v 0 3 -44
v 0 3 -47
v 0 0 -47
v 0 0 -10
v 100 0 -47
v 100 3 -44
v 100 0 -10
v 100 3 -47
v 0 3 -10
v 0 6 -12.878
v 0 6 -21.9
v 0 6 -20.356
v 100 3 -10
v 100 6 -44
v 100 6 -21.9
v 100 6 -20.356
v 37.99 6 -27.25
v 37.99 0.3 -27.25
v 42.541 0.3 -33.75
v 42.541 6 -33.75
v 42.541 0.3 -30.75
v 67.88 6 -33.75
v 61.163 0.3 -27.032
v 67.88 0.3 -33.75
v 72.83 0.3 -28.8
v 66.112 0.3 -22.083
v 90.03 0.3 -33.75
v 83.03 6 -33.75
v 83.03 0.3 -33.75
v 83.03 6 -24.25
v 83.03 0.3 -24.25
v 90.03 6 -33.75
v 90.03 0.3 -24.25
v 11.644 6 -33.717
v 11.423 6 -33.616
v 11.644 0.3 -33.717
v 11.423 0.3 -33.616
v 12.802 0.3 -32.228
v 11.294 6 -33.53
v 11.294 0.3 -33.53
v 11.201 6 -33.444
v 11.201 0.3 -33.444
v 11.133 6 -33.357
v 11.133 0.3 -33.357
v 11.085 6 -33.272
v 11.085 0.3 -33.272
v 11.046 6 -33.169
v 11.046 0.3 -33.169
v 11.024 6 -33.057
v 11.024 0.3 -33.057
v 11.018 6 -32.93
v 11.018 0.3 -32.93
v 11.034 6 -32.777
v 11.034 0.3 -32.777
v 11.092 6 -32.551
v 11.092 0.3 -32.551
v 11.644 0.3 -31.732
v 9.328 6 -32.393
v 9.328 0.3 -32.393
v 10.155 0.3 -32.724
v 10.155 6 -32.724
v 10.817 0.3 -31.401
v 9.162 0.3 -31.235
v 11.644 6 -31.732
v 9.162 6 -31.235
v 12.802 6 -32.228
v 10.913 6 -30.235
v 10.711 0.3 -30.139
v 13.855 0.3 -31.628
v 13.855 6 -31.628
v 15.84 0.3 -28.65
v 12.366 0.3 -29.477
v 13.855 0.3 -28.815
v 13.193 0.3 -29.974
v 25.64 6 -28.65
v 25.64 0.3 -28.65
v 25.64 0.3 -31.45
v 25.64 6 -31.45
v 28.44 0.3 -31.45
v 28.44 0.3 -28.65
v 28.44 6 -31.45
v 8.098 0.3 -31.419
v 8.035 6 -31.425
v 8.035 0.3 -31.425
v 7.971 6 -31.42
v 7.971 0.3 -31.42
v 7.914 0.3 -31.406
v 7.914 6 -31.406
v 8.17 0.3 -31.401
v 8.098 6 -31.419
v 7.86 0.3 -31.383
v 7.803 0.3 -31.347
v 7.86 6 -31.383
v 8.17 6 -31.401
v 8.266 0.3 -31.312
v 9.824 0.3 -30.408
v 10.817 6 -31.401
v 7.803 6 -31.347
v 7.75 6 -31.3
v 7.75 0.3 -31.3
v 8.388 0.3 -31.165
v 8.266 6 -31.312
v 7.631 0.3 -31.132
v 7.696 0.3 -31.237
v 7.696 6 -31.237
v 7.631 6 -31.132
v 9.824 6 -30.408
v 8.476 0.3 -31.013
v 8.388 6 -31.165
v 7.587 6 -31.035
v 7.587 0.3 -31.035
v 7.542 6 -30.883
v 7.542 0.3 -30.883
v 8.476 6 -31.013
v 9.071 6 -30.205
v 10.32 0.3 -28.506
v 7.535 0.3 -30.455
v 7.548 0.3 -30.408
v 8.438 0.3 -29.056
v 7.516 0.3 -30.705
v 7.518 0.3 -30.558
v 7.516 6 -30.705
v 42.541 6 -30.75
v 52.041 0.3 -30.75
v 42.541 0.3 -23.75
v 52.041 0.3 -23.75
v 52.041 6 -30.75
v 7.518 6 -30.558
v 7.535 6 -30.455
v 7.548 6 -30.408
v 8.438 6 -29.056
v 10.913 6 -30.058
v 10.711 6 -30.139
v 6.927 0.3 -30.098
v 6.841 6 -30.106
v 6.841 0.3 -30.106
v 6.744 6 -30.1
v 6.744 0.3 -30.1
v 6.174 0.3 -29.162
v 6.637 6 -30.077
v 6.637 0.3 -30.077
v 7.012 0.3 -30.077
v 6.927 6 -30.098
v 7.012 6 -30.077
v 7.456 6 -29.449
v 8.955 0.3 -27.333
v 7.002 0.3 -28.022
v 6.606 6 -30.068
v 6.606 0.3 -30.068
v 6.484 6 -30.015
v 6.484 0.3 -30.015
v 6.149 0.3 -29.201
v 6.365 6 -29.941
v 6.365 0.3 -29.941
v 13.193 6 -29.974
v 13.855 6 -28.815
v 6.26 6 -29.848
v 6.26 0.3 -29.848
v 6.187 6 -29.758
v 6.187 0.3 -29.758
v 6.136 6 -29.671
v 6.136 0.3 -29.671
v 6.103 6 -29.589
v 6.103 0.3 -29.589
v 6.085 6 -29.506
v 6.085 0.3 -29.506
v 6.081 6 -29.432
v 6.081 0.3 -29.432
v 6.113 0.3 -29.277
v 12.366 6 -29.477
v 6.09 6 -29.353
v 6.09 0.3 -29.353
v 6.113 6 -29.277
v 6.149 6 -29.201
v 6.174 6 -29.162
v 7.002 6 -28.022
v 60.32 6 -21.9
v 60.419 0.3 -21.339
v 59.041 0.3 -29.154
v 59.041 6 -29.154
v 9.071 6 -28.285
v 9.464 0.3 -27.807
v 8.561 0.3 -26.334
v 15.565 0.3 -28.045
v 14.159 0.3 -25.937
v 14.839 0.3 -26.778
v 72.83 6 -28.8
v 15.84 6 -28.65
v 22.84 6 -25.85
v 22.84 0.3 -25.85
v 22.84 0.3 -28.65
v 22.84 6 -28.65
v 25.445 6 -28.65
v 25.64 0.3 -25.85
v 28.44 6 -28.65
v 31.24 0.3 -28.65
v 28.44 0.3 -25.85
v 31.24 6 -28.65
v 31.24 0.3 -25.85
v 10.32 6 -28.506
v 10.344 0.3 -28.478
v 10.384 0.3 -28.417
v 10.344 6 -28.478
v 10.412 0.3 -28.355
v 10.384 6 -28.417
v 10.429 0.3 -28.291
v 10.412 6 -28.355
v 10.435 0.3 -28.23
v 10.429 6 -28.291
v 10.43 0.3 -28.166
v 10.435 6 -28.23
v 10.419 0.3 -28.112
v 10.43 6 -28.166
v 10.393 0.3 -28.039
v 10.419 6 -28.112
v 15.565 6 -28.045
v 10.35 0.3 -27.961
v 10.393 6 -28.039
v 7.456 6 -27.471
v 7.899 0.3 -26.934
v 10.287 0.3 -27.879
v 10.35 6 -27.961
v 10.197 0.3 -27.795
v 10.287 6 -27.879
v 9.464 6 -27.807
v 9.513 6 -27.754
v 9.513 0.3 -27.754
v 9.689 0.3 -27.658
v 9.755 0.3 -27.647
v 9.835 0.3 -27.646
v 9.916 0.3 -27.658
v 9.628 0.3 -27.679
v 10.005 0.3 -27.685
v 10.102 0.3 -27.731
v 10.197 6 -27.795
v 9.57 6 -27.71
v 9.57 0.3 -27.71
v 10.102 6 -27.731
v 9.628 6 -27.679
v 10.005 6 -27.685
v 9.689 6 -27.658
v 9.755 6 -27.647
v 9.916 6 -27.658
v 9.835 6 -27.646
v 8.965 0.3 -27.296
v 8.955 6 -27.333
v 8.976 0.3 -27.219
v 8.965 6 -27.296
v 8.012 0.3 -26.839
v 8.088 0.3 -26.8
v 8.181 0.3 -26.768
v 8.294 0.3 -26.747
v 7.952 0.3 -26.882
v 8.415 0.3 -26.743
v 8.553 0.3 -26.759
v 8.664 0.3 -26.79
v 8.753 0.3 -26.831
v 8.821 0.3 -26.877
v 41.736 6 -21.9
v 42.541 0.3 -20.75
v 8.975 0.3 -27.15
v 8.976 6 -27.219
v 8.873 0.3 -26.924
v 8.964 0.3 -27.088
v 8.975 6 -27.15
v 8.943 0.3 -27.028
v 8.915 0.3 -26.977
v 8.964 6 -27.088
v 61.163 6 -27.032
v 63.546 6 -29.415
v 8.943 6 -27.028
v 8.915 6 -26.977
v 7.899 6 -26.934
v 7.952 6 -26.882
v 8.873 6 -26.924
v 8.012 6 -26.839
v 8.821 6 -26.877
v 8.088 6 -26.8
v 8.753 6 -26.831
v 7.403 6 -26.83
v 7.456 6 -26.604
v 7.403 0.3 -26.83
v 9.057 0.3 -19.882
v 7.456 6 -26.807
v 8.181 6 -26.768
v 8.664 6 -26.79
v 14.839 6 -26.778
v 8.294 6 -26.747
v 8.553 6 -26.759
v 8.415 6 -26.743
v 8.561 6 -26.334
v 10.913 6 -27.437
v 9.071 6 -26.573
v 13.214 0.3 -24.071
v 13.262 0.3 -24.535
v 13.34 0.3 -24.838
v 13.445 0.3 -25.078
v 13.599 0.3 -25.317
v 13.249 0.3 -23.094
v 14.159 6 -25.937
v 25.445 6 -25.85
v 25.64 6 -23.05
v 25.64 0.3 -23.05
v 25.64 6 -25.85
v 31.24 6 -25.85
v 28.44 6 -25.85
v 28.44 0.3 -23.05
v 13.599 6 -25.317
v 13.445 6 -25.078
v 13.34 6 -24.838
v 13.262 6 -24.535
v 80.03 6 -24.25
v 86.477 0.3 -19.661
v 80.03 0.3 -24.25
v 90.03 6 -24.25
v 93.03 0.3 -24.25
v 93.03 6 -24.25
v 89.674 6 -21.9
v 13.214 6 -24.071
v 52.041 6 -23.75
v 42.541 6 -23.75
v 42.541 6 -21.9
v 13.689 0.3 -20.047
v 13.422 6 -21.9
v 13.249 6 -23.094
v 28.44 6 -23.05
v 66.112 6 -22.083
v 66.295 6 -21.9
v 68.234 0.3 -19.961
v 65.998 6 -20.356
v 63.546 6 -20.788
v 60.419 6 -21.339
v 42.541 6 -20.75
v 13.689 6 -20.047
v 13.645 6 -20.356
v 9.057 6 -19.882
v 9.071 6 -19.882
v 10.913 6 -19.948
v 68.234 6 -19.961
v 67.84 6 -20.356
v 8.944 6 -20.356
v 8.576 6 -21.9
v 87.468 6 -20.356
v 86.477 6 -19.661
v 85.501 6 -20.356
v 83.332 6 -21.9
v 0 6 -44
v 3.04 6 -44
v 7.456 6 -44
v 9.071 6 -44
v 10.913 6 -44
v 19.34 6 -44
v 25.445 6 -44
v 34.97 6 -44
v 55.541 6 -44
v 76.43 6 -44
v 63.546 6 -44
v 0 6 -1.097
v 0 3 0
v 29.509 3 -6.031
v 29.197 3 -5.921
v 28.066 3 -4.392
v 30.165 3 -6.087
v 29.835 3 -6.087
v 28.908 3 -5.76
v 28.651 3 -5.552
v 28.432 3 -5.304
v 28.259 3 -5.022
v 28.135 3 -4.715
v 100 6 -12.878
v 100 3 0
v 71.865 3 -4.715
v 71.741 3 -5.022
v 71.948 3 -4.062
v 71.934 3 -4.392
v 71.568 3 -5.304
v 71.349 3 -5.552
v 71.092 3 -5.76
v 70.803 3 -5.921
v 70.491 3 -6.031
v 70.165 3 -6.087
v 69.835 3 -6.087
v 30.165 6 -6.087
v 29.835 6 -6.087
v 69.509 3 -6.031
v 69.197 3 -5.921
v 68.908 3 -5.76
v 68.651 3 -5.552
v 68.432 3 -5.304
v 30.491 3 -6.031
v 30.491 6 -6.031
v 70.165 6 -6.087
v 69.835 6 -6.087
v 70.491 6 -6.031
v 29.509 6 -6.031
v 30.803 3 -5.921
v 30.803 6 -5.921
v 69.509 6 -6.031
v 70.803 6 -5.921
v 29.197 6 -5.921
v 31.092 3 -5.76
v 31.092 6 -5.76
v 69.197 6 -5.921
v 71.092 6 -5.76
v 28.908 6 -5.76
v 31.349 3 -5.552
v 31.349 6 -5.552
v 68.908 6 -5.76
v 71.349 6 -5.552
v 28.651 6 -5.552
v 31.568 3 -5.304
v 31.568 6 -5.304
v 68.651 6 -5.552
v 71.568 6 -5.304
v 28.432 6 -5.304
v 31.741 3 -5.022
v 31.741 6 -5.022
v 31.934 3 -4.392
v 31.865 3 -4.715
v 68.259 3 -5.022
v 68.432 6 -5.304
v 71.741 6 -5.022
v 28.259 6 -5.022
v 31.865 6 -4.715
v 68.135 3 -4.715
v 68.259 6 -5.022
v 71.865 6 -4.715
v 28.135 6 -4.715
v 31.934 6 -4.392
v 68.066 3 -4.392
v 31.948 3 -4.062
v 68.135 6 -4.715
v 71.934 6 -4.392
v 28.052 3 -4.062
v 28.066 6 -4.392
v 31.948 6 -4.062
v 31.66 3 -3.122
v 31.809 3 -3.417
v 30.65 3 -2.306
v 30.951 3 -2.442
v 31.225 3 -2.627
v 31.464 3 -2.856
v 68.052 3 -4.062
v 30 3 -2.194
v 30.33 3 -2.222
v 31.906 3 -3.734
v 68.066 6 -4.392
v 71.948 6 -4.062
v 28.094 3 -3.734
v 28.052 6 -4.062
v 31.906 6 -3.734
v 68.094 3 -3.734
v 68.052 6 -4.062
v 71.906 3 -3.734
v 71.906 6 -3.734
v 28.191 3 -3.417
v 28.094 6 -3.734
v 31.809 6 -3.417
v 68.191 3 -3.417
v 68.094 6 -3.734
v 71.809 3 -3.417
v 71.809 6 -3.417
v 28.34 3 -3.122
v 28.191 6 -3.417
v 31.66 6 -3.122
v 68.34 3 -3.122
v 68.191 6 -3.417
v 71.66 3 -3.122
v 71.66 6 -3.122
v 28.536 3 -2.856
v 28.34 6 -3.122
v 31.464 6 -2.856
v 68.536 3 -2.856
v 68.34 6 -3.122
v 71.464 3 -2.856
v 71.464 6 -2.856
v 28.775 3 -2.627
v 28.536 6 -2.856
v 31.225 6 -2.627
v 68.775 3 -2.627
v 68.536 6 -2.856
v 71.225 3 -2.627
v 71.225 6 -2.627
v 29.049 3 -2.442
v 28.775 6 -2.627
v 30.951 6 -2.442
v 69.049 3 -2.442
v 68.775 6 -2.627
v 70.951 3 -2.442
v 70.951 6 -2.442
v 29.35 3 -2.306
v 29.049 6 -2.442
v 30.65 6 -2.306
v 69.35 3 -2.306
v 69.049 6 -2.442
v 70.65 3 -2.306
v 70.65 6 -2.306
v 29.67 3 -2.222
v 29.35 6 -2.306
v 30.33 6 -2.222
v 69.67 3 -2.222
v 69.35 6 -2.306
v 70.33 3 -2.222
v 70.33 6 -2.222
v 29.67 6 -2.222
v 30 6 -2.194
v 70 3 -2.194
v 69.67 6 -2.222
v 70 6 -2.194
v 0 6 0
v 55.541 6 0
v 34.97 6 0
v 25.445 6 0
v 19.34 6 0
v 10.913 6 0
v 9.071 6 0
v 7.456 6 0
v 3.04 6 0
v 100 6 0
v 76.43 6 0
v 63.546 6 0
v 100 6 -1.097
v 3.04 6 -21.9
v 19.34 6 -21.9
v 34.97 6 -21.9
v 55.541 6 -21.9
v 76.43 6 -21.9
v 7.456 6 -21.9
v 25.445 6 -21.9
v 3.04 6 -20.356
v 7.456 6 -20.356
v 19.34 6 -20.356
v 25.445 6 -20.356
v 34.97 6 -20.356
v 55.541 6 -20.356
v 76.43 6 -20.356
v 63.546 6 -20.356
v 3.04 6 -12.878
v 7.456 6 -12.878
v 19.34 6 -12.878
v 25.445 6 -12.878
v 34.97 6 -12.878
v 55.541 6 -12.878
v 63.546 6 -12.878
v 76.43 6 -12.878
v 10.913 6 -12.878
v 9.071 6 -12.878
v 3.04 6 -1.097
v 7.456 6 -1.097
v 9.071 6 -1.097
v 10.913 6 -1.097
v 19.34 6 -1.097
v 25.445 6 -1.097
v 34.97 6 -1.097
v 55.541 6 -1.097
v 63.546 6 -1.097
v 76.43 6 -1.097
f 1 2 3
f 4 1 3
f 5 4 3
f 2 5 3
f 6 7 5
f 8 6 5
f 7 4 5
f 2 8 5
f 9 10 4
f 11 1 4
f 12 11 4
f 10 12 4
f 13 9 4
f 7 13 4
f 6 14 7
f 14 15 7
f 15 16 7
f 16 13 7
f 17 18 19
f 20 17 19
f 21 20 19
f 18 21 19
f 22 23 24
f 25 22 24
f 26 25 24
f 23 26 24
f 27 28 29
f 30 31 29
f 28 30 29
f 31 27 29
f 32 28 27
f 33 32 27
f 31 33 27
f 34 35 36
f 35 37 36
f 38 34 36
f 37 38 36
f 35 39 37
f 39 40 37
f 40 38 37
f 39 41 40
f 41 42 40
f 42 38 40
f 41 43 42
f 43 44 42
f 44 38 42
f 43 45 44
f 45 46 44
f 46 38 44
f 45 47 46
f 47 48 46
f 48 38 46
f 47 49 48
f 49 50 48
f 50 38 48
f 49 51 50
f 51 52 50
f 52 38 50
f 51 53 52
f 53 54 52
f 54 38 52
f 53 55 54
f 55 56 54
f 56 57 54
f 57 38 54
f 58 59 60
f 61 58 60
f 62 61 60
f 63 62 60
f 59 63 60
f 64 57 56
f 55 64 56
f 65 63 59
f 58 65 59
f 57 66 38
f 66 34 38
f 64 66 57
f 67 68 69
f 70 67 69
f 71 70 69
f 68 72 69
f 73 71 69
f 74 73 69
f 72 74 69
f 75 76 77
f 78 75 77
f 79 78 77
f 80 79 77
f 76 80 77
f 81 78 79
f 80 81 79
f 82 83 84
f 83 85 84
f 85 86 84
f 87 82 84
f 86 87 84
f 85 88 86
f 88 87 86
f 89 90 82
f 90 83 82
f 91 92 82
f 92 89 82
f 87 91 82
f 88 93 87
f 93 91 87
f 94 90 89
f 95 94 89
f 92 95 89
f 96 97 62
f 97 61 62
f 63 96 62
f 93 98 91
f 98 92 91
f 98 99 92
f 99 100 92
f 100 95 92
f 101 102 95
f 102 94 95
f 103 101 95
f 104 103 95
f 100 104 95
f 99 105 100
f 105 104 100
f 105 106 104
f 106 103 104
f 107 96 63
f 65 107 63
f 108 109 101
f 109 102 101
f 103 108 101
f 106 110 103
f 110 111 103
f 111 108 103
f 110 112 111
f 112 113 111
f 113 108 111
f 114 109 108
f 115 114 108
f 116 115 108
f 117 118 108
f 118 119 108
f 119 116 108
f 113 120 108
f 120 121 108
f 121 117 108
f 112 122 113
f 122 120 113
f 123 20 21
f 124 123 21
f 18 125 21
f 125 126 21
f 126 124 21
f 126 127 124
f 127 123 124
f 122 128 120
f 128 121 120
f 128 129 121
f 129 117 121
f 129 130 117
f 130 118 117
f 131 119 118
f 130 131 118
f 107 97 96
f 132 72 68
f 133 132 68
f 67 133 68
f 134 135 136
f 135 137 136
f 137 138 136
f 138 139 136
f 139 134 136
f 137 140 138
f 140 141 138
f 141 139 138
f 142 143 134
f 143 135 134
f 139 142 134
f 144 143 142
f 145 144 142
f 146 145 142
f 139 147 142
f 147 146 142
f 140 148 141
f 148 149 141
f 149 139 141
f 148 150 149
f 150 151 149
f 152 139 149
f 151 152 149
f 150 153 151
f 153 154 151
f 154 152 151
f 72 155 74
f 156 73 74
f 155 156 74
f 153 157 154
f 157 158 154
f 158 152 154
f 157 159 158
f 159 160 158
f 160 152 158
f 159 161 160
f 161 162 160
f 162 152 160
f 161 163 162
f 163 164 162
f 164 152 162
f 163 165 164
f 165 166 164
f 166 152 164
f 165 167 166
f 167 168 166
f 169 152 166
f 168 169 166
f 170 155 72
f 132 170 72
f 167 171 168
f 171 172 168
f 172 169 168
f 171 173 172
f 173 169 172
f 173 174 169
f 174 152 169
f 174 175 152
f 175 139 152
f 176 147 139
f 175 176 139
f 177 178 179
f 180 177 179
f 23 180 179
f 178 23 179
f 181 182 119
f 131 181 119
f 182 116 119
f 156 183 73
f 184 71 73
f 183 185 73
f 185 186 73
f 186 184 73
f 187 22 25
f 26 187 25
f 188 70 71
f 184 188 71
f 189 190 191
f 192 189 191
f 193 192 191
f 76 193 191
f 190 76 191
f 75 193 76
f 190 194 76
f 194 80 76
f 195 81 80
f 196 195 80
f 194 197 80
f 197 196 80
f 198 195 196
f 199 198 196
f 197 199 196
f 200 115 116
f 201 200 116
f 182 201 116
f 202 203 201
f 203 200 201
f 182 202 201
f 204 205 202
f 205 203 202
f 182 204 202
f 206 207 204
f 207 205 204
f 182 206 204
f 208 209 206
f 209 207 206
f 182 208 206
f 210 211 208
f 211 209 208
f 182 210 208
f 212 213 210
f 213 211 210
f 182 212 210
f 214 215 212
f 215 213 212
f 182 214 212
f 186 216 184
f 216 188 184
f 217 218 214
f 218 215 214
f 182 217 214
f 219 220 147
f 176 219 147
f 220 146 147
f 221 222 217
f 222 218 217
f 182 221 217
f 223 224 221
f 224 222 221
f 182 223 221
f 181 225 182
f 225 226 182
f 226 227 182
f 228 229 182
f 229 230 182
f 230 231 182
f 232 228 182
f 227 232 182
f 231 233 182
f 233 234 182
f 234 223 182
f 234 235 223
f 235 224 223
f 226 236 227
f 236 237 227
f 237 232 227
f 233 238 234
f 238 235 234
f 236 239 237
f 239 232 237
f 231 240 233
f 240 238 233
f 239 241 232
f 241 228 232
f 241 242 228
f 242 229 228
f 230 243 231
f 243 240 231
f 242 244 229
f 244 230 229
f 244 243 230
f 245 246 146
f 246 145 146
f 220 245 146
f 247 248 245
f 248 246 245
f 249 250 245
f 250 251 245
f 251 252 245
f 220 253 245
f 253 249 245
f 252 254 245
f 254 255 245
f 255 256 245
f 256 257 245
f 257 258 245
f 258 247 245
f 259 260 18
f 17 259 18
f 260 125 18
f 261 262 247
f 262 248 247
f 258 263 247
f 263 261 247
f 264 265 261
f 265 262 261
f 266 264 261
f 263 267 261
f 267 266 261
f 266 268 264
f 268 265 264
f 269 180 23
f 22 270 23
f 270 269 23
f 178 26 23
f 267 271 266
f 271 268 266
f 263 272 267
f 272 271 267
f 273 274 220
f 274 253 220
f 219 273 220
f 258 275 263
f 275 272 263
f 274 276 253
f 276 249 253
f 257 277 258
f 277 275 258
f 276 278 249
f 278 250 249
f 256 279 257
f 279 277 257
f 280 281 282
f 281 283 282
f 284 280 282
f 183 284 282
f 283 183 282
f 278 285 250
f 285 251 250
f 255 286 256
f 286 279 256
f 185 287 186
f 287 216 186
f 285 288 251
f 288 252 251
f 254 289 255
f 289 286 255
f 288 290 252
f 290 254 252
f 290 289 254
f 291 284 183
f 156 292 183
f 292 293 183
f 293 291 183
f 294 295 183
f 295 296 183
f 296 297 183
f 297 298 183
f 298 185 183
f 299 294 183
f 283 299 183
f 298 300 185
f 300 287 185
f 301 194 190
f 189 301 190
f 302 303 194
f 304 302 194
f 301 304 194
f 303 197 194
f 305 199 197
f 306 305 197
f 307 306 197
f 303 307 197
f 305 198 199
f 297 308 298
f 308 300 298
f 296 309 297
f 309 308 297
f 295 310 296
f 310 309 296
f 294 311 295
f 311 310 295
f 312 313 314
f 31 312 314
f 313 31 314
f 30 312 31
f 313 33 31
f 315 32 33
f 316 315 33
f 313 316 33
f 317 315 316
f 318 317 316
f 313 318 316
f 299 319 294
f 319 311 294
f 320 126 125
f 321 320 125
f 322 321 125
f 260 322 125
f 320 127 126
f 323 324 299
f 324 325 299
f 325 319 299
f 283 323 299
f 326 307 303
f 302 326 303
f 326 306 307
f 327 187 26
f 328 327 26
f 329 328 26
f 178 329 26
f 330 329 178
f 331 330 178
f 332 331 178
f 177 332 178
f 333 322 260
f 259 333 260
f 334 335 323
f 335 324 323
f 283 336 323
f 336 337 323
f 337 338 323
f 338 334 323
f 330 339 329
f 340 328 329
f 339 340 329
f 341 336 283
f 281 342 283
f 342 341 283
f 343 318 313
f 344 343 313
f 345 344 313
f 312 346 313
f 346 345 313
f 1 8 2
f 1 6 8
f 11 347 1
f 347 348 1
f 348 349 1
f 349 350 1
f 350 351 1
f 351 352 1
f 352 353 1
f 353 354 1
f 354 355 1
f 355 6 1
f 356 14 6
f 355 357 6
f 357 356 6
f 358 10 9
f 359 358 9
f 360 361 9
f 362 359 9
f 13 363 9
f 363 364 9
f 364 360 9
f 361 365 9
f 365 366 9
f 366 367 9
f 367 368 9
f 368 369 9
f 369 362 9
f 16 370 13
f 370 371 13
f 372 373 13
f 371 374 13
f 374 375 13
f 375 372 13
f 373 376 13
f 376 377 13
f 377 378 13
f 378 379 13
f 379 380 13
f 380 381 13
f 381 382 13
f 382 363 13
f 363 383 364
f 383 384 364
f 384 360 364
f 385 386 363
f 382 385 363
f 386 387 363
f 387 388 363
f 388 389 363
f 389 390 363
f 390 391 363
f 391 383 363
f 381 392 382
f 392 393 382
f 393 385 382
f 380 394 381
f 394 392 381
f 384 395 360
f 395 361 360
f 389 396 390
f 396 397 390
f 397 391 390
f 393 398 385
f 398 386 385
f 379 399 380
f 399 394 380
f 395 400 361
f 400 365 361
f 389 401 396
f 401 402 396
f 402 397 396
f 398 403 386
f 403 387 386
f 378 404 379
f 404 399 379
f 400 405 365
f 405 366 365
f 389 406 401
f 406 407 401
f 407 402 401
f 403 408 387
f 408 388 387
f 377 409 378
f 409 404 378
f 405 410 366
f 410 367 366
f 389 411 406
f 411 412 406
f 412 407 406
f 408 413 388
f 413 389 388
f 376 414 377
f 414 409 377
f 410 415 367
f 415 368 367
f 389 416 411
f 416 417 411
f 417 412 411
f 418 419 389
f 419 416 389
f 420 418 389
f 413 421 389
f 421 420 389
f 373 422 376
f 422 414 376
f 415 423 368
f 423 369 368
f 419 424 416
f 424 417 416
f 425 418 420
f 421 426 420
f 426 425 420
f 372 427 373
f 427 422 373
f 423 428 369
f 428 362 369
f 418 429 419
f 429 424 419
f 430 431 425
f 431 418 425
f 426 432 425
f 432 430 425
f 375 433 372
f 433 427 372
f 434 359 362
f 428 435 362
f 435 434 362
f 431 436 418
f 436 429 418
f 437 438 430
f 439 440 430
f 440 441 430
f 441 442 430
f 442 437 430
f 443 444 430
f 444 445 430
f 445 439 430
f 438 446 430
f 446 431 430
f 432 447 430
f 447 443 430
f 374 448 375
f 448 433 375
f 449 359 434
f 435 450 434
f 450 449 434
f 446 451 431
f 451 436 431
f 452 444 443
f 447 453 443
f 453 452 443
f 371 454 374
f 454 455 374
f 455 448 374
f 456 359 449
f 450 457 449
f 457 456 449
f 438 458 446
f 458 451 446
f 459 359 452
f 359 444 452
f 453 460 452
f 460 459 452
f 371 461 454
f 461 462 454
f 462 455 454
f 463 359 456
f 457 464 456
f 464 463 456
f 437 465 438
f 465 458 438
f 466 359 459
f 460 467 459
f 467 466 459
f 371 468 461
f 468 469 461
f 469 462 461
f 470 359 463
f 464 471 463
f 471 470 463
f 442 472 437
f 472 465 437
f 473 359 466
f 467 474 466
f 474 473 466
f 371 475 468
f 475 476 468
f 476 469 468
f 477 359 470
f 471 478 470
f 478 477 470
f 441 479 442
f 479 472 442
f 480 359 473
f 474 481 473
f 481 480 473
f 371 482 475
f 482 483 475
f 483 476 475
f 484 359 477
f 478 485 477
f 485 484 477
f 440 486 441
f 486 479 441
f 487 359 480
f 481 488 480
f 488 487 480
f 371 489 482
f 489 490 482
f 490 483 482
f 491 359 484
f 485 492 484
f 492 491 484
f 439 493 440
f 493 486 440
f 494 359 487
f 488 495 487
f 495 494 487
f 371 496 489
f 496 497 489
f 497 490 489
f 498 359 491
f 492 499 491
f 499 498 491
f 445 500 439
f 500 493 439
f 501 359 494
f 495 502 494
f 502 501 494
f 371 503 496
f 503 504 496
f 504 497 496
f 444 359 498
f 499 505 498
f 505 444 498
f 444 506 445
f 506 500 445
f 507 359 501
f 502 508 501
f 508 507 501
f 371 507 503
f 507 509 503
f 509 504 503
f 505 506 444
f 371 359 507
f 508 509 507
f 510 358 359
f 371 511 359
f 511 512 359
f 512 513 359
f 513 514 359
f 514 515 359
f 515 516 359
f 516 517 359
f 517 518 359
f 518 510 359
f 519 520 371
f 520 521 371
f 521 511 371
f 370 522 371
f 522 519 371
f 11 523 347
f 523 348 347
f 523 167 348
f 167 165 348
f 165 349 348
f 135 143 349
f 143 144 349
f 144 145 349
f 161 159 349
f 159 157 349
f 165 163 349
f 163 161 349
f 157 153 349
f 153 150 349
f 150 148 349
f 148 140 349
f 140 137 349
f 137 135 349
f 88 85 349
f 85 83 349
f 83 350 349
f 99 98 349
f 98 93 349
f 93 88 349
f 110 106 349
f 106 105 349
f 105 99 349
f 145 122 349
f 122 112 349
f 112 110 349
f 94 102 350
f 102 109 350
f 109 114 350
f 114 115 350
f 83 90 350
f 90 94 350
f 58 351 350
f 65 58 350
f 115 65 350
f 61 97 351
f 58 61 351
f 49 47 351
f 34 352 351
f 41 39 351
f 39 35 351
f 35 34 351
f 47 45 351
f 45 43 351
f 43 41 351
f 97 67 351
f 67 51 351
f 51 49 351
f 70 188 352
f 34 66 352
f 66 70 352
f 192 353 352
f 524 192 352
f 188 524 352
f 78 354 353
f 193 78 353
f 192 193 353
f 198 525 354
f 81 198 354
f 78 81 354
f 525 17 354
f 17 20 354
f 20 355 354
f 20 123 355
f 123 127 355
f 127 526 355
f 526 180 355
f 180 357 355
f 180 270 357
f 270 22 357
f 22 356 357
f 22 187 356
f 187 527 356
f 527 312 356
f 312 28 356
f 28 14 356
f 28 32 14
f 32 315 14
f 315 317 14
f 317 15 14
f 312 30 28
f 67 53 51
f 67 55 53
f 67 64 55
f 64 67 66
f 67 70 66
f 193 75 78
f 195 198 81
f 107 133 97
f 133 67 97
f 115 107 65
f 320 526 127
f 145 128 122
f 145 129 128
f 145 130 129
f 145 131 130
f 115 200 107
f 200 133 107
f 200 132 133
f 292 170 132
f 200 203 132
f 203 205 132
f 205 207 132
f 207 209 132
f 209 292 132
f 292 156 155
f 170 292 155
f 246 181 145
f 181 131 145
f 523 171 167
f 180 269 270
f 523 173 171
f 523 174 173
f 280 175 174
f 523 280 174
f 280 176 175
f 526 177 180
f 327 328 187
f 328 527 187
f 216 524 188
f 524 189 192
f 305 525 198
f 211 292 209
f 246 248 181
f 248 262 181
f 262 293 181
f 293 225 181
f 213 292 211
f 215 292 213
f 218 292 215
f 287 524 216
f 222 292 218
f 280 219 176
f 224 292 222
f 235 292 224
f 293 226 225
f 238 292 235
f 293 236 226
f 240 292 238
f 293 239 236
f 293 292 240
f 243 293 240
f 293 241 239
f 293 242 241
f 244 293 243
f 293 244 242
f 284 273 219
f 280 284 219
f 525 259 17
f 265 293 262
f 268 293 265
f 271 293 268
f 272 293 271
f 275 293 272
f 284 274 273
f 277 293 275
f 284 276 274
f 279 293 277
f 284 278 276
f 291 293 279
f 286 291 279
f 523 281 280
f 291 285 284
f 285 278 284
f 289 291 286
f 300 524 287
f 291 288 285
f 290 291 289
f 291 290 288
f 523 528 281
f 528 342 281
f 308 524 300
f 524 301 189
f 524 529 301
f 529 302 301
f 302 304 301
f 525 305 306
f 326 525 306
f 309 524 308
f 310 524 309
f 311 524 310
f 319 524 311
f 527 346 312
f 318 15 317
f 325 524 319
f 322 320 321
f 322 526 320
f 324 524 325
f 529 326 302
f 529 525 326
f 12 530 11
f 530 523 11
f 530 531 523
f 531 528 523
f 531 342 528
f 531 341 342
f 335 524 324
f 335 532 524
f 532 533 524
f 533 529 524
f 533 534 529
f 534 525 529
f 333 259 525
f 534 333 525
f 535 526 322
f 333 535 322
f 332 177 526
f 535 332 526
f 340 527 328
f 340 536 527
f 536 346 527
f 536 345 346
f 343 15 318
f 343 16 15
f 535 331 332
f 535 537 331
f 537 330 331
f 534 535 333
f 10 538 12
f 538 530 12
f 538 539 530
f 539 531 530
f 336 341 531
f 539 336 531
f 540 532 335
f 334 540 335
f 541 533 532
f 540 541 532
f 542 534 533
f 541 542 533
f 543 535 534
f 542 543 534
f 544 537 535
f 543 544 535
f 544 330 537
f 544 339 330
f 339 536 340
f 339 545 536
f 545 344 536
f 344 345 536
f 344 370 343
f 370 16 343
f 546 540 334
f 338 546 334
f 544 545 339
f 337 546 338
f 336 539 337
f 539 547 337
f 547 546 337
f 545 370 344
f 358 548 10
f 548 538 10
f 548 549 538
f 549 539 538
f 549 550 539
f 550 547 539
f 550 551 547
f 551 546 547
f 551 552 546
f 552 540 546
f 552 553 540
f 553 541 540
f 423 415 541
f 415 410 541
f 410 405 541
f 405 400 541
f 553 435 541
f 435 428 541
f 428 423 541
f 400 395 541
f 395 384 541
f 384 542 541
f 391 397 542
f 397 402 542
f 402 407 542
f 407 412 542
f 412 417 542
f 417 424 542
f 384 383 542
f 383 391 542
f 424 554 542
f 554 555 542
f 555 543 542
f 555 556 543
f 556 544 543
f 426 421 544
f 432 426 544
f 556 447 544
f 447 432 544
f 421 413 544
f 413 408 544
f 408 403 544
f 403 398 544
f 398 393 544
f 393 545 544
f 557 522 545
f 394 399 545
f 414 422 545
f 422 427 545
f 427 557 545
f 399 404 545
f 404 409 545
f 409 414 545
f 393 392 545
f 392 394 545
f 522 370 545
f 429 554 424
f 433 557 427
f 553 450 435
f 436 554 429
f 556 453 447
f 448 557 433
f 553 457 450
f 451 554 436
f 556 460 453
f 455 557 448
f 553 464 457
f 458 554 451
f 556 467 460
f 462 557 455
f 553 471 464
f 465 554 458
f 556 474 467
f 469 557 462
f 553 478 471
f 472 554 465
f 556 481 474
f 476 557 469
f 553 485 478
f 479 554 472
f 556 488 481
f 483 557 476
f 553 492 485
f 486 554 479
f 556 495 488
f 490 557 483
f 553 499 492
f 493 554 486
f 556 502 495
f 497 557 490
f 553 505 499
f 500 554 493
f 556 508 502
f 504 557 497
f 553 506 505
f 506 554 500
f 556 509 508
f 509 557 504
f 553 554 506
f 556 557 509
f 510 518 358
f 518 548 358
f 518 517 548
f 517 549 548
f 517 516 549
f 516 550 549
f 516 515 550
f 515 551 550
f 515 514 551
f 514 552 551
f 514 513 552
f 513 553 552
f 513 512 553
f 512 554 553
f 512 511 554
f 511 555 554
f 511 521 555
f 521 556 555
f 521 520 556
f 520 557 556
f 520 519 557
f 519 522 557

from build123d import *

# Parameters (mm, degrees)
SKETCH1_W           = 100
SKETCH1_H           = 50
BOSS_EXTRUDE1_DEPTH = 6
SKETCH2_W           = 10
SKETCH2_H           = 3
CUT_EXTRUDE1_DEPTH  = 101
SKETCH3_W           = 6
SKETCH3_H           = 34
BOSS_EXTRUDE2_DEPTH = 100
SKETCH4_W           = 2
SKETCH4_H           = 3
CUT_EXTRUDE2_DEPTH  = 101
SKETCH5_W           = 7.857142857
SKETCH5_H           = 12.5
CUT_EXTRUDE3_DEPTH  = 5.5
CUT_EXTRUDE4_DEPTH  = 5.7
CUT_EXTRUDE5_DEPTH  = 101.0000001
SKETCH10_R          = 1.95
CUT_EXTRUDE6_DEPTH  = 7
SKETCH11_R          = 1.95
CUT_EXTRUDE7_DEPTH  = 7


with BuildPart() as part:
    # Sketch1 → Boss-Extrude1 (new body)
    with BuildSketch(Plane(origin=(0, 0, 0), x_dir=(1, 0, 0), z_dir=(0, 1, 0))):
        with Locations((50, 25)):
            Rectangle(SKETCH1_W, SKETCH1_H)
    extrude(amount=BOSS_EXTRUDE1_DEPTH)

    # Sketch2 → Cut-Extrude1 (cut, through all)
    with BuildSketch(Plane(origin=(100, 0, 0), x_dir=(0, 0, -1), z_dir=(1, 0, 0))):
        with Locations((5, 1.5)):
            Rectangle(SKETCH2_W, SKETCH2_H)
    extrude(amount=-CUT_EXTRUDE1_DEPTH, mode=Mode.SUBTRACT)

    # Sketch3 → Boss-Extrude2 (add)
    with BuildSketch(Plane(origin=(100, 0, 0), x_dir=(0, 0, -1), z_dir=(1, 0, 0))):
        with Locations((47, 17)):
            Rectangle(SKETCH3_W, SKETCH3_H)
    extrude(amount=-BOSS_EXTRUDE2_DEPTH)

    # Sketch4 → Cut-Extrude2 (cut, through all)
    with BuildSketch(Plane.ZY):
        with Locations((-45, 32.5)):
            Rectangle(SKETCH4_W, SKETCH4_H)
    extrude(amount=-CUT_EXTRUDE2_DEPTH, mode=Mode.SUBTRACT)

    # Sketch5 → Cut-Extrude3 (cut)
    with BuildSketch(Plane(origin=(0, 0, -44), x_dir=(-1, 0, 0), z_dir=(0, 0, -1))):
        with BuildLine():
            Line((-45.088169643, 17.571428571), (-45.439732143, 17.454241071))
            Line((-45.439732143, 17.454241071), (-48.056919643, 14.901227679))
            Line((-48.056919643, 14.901227679), (-48.098772321, 14.76171875))
            Line((-48.098772321, 14.76171875), (-48.107142857, 12.309151786))
            Line((-48.107142857, 12.309151786), (-48.059709821, 12.0859375))
            Line((-48.059709821, 12.0859375), (-45.609933036, 9.619419643))
            ThreePointArc((-45.609933036, 9.619419643), (-45.303061085, 9.424580045), (-44.945870536, 9.357142857))
            Line((-44.945870536, 9.357142857), (-38.319196429, 9.376674107))
            ThreePointArc((-38.319196429, 9.376674107), (-37.810119286, 9.488456034), (-37.392857143, 9.80078125))
            Line((-37.392857143, 9.80078125), (-37.392857143, 23.740513393))
            ThreePointArc((-37.392857143, 23.740513393), (-38.102358714, 23.844903984), (-38.818638393, 23.880022321))
            Line((-38.818638393, 23.880022321), (-38.821428571, 17.571428571))
            Line((-38.821428571, 17.571428571), (-40.116071429, 17.571428571))
            Line((-40.116071429, 17.571428571), (-46.991071429, 24.259486607))
            ThreePointArc((-46.991071429, 24.259486607), (-47.787451466, 24.334800239), (-48.031808036, 23.573102679))
            Line((-48.031808036, 23.573102679), (-41.681361607, 17.571428571))
            Line((-41.681361607, 17.571428571), (-45.088169643, 17.571428571))
        make_face()
        Polygon((-46.678571429, 12.557477679), (-44.725446429, 10.607142857), (-38.821428571, 10.607142857), (-38.821428571, 16.321428571), (-44.708705357, 16.321428571), (-46.678571429, 14.354352679), align=None, mode=Mode.SUBTRACT)
        with BuildLine():
            Line((-17.038504464, 9.619419643), (-19.48828125, 12.0859375))
            Line((-19.48828125, 12.0859375), (-19.535714286, 12.309151786))
            Line((-19.535714286, 12.309151786), (-19.52734375, 14.758928571))
            Line((-19.52734375, 14.758928571), (-19.485491071, 14.904017857))
            Line((-19.485491071, 14.904017857), (-16.896205357, 17.454241071))
            Line((-16.896205357, 17.454241071), (-16.555803571, 17.571428571))
            Line((-16.555803571, 17.571428571), (-10.25, 17.571428571))
            Line((-10.25, 17.571428571), (-10.244419643, 23.868861607))
            ThreePointArc((-10.244419643, 23.868861607), (-9.462763686, 24.582553037), (-8.821428571, 23.740513393))
            Line((-8.821428571, 23.740513393), (-8.821428571, 9.80078125))
            ThreePointArc((-8.821428571, 9.80078125), (-9.238690714, 9.488456034), (-9.747767857, 9.376674107))
            Line((-9.747767857, 9.376674107), (-16.374441964, 9.357142857))
            ThreePointArc((-16.374441964, 9.357142857), (-16.731632514, 9.424580045), (-17.038504464, 9.619419643))
        make_face()
        Polygon((-18.107142857, 12.563058036), (-16.154017857, 10.607142857), (-10.25, 10.607142857), (-10.25, 16.321428571), (-16.137276786, 16.321428571), (-18.107142857, 14.368303571), align=None, mode=Mode.SUBTRACT)
        with BuildLine():
            Line((-33.821428571, 10.1328125), (-33.815848214, 23.880022321))
            ThreePointArc((-33.815848214, 23.880022321), (-33.601713039, 24.293327013), (-33.140625, 24.357142857))
            Line((-33.140625, 24.357142857), (-23.508928571, 24.357142857))
            ThreePointArc((-23.508928571, 24.357142857), (-23.212822653, 23.985866281), (-23.107142857, 23.522879464))
            Line((-23.107142857, 23.522879464), (-23.107142857, 9.78125))
            ThreePointArc((-23.107142857, 9.78125), (-23.280423047, 9.477022359), (-23.609375, 9.357142857))
            Line((-23.609375, 9.357142857), (-33.235491071, 9.379464286))
            ThreePointArc((-33.235491071, 9.379464286), (-33.657785084, 9.655552078), (-33.821428571, 10.1328125))
        make_face()
        with Locations((-28.464285715, 16.857142857)):
            Rectangle(SKETCH5_W, SKETCH5_H, mode=Mode.SUBTRACT)
        with BuildLine():
            Line((-62.392857143, 10.1328125), (-62.387276786, 23.880022321))
            ThreePointArc((-62.387276786, 23.880022321), (-62.17314161, 24.293327013), (-61.712053571, 24.357142857))
            Line((-61.712053571, 24.357142857), (-52.080357143, 24.357142857))
            ThreePointArc((-52.080357143, 24.357142857), (-51.784251224, 23.985866281), (-51.678571429, 23.522879464))
            Line((-51.678571429, 23.522879464), (-51.678571429, 9.78125))
            ThreePointArc((-51.678571429, 9.78125), (-51.851851619, 9.477022359), (-52.180803571, 9.357142857))
            Line((-52.180803571, 9.357142857), (-61.806919643, 9.379464286))
            ThreePointArc((-61.806919643, 9.379464286), (-62.283572717, 9.613272807), (-62.392857143, 10.1328125))
        make_face()
        with Locations((-57.035714286, 16.857142857)):
            Rectangle(SKETCH5_W, SKETCH5_H, mode=Mode.SUBTRACT)
        with BuildLine():
            Line((-76.516741071, 10.224888393), (-69.834263393, 16.890625))
            Line((-69.834263393, 16.890625), (-76.508370536, 23.564732143))
            ThreePointArc((-76.508370536, 23.564732143), (-76.263865977, 24.33823157), (-75.456473214, 24.259486607))
            Line((-75.456473214, 24.259486607), (-68.670758929, 17.571428571))
            Line((-68.670758929, 17.571428571), (-67.392857143, 17.571428571))
            Line((-67.392857143, 17.571428571), (-67.390066964, 23.880022321))
            ThreePointArc((-67.390066964, 23.880022321), (-66.613914042, 24.456808533), (-65.964285714, 23.740513393))
            Line((-65.964285714, 23.740513393), (-65.964285714, 9.789620536))
            ThreePointArc((-65.964285714, 9.789620536), (-66.815504738, 9.403127861), (-67.392857143, 10.138392857))
            Line((-67.392857143, 10.138392857), (-67.392857143, 16.321428571))
            Line((-67.392857143, 16.321428571), (-68.66796875, 16.321428571))
            Line((-68.66796875, 16.321428571), (-75.489955357, 9.465959821))
            ThreePointArc((-75.489955357, 9.465959821), (-76.031889018, 9.806810078), (-76.516741071, 10.224888393))
        make_face()
        with BuildLine():
            Line((-81.678571429, 10.130022321), (-81.678571429, 21.2265625))
            Line((-81.678571429, 21.2265625), (-83.5703125, 23.107142857))
            Line((-83.5703125, 23.107142857), (-87.585379464, 23.107142857))
            Line((-87.585379464, 23.107142857), (-89.535714286, 21.151227679))
            Line((-89.535714286, 21.151227679), (-89.535714286, 9.770089286))
            ThreePointArc((-89.535714286, 9.770089286), (-90.273009404, 9.862916097), (-90.964285714, 10.135602679))
            Line((-90.964285714, 10.135602679), (-90.883370536, 21.751116071))
            Line((-90.883370536, 21.751116071), (-88.2578125, 24.320870536))
            Line((-88.2578125, 24.320870536), (-87.872767857, 24.357142857))
            Line((-87.872767857, 24.357142857), (-82.970424107, 24.357142857))
            Line((-82.970424107, 24.357142857), (-82.7890625, 24.234375))
            Line((-82.7890625, 24.234375), (-80.303013393, 21.742745536))
            Line((-80.303013393, 21.742745536), (-80.25, 21.48046875))
            Line((-80.25, 21.48046875), (-80.25, 9.78125))
            ThreePointArc((-80.25, 9.78125), (-80.985264996, 9.869705022), (-81.678571429, 10.130022321))
        make_face()
    extrude(amount=CUT_EXTRUDE3_DEPTH, mode=Mode.SUBTRACT)

    # Sketch8 → Cut-Extrude4 (cut)
    with BuildSketch(Plane(origin=(0, 6, 0), x_dir=(1, 0, 0), z_dir=(0, 1, 0))):
        with BuildLine():
            Line((7.011617647, 30.077205882), (8.955082743, 27.33260299))
            add(Edge.make_bspline(
                [(8.955082743, 27.33260299), (9.12959235, 26.730722395), (8.207708735, 26.573406529), (7.899470003, 26.933823529)],
                knots=[0, 0, 0, 0, 1, 1, 1, 1], degree=3))
            add(Edge.make_bspline(
                [(7.899470003, 26.933823529), (6.967481131, 27.995956124), (6.173874947, 29.162344961)],
                knots=[0, 0, 0, 1, 1, 1], degree=2))
            add(Edge.make_bspline(
                [(6.173874947, 29.162344961), (5.827065663, 29.66494419), (6.530628947, 30.242627585), (7.011617647, 30.077205882)],
                knots=[0, 0, 0, 0, 1, 1, 1, 1], degree=3))
        make_face()
        with BuildLine():
            Line((8.476184036, 31.013434386), (10.320441176, 28.506054806))
            add(Edge.make_bspline(
                [(10.320441176, 28.506054806), (10.75287522, 28.022402696), (9.844480118, 27.32594185), (9.464423283, 27.806698869)],
                knots=[0, 0, 0, 0, 1, 1, 1, 1], degree=3))
            add(Edge.make_bspline(
                [(7.548449232, 30.408088235), (8.369245022, 29.00368602), (9.464423283, 27.806698869)],
                knots=[0, 0, 0, 1, 1, 1], degree=2))
            add(Edge.make_bspline(
                [(7.548449232, 30.408088235), (7.420862108, 30.780822958), (7.657281624, 31.572935659), (8.169705882, 31.400735294)],
                knots=[0, 0, 0, 0, 1, 1, 1, 1], degree=3))
            add(Edge.make_bspline(
                [(8.169705882, 31.400735294), (8.365163665, 31.240936083), (8.476184036, 31.013434386)],
                knots=[0, 0, 0, 1, 1, 1], degree=2))
        make_face()
        Polygon((10.816764706, 31.400735294), (10.155, 32.724264706), (9.327794118, 32.393382353), (9.162352941, 31.235294118), (9.824117647, 30.408088235), align=None)
        with BuildLine():
            Line((12.802058824, 32.227941176), (11.643970588, 33.716911765))
            add(Edge.make_bspline(
                [(11.643970588, 33.716911765), (10.801410064, 33.411012177), (11.092331374, 32.550744981)],
                knots=[0, 0, 0, 1, 1, 1], degree=2))
            Line((11.092331374, 32.550744981), (11.643970588, 31.731617647))
            Line((11.643970588, 31.731617647), (12.802058824, 32.227941176))
        make_face()
        with BuildLine():
            Line((13.193009945, 29.973529412), (13.854774651, 28.815441176))
            Line((13.854774651, 28.815441176), (8.560657004, 26.333823529))
            Line((8.560657004, 26.333823529), (7.402568768, 26.830147059))
            Line((7.402568768, 26.830147059), (9.056980533, 19.881617647))
            Line((9.056980533, 19.881617647), (13.689333474, 20.047058824))
            add(Edge.make_bspline(
                [(13.689333474, 20.047058824), (12.450227116, 27.171920383), (13.777231511, 23.836713066), (15.840068768, 28.65)],
                knots=[0, 0, 0, 0, 1, 1, 1, 1], degree=3))
            Line((15.840068768, 28.65), (13.854774651, 31.627941176))
            Line((13.854774651, 31.627941176), (10.711392298, 30.138970588))
            Line((10.711392298, 30.138970588), (12.365804063, 29.477205882))
            Line((12.365804063, 29.477205882), (13.193009945, 29.973529412))
        make_face()
        Polygon((31.240068768, 25.85), (31.240068768, 28.65), (28.440068768, 28.65), (28.440068768, 31.45), (25.640068768, 31.45), (25.640068768, 28.65), (22.840068768, 28.65), (22.840068768, 25.85), (25.640068768, 25.85), (25.640068768, 23.05), (28.440068768, 23.05), (28.440068768, 25.85), align=None)
        Polygon((52.041417767, 30.75), (42.541417767, 30.75), (42.541417767, 33.75), (37.990068768, 27.25), (42.541417767, 20.75), (42.541417767, 23.75), (52.041417767, 23.75), align=None)
        Polygon((60.419322104, 21.339322104), (59.041417767, 29.153805922), (61.16273811, 27.032485579), (67.880252532, 33.75), (72.83, 28.800252532), (66.112485579, 22.08273811), (68.233805922, 19.961417767), align=None)
        Polygon((90.03, 33.75), (90.03, 24.25), (93.03, 24.25), (86.476783646, 19.661388509), (80.03, 24.25), (83.03, 24.25), (83.03, 33.75), align=None)
    extrude(amount=-CUT_EXTRUDE4_DEPTH, mode=Mode.SUBTRACT)

    # Sketch9 → Cut-Extrude5 (cut, through all)
    with BuildSketch(Plane.ZY):
        Polygon((-50, 6), (-50, 0), (-47, 0), (-47, 3), (-44, 3), (-44, 6), (-44, 34), (-50, 34), align=None)
    extrude(amount=-CUT_EXTRUDE5_DEPTH, mode=Mode.SUBTRACT)

    # Sketch10 → Cut-Extrude6 (cut, through all)
    with BuildSketch(Plane(origin=(0, 6, 0), x_dir=(1, 0, 0), z_dir=(0, 1, 0))):
        with Locations((70, 4.144406286)):
            Circle(SKETCH10_R)
    extrude(amount=-CUT_EXTRUDE6_DEPTH, mode=Mode.SUBTRACT)

    # Sketch11 → Cut-Extrude7 (cut, through all)
    with BuildSketch(Plane(origin=(0, 6, 0), x_dir=(1, 0, 0), z_dir=(0, 1, 0))):
        with Locations((30, 4.144406286)):
            Circle(SKETCH11_R)
    extrude(amount=-CUT_EXTRUDE7_DEPTH, mode=Mode.SUBTRACT)


solid = part.part
